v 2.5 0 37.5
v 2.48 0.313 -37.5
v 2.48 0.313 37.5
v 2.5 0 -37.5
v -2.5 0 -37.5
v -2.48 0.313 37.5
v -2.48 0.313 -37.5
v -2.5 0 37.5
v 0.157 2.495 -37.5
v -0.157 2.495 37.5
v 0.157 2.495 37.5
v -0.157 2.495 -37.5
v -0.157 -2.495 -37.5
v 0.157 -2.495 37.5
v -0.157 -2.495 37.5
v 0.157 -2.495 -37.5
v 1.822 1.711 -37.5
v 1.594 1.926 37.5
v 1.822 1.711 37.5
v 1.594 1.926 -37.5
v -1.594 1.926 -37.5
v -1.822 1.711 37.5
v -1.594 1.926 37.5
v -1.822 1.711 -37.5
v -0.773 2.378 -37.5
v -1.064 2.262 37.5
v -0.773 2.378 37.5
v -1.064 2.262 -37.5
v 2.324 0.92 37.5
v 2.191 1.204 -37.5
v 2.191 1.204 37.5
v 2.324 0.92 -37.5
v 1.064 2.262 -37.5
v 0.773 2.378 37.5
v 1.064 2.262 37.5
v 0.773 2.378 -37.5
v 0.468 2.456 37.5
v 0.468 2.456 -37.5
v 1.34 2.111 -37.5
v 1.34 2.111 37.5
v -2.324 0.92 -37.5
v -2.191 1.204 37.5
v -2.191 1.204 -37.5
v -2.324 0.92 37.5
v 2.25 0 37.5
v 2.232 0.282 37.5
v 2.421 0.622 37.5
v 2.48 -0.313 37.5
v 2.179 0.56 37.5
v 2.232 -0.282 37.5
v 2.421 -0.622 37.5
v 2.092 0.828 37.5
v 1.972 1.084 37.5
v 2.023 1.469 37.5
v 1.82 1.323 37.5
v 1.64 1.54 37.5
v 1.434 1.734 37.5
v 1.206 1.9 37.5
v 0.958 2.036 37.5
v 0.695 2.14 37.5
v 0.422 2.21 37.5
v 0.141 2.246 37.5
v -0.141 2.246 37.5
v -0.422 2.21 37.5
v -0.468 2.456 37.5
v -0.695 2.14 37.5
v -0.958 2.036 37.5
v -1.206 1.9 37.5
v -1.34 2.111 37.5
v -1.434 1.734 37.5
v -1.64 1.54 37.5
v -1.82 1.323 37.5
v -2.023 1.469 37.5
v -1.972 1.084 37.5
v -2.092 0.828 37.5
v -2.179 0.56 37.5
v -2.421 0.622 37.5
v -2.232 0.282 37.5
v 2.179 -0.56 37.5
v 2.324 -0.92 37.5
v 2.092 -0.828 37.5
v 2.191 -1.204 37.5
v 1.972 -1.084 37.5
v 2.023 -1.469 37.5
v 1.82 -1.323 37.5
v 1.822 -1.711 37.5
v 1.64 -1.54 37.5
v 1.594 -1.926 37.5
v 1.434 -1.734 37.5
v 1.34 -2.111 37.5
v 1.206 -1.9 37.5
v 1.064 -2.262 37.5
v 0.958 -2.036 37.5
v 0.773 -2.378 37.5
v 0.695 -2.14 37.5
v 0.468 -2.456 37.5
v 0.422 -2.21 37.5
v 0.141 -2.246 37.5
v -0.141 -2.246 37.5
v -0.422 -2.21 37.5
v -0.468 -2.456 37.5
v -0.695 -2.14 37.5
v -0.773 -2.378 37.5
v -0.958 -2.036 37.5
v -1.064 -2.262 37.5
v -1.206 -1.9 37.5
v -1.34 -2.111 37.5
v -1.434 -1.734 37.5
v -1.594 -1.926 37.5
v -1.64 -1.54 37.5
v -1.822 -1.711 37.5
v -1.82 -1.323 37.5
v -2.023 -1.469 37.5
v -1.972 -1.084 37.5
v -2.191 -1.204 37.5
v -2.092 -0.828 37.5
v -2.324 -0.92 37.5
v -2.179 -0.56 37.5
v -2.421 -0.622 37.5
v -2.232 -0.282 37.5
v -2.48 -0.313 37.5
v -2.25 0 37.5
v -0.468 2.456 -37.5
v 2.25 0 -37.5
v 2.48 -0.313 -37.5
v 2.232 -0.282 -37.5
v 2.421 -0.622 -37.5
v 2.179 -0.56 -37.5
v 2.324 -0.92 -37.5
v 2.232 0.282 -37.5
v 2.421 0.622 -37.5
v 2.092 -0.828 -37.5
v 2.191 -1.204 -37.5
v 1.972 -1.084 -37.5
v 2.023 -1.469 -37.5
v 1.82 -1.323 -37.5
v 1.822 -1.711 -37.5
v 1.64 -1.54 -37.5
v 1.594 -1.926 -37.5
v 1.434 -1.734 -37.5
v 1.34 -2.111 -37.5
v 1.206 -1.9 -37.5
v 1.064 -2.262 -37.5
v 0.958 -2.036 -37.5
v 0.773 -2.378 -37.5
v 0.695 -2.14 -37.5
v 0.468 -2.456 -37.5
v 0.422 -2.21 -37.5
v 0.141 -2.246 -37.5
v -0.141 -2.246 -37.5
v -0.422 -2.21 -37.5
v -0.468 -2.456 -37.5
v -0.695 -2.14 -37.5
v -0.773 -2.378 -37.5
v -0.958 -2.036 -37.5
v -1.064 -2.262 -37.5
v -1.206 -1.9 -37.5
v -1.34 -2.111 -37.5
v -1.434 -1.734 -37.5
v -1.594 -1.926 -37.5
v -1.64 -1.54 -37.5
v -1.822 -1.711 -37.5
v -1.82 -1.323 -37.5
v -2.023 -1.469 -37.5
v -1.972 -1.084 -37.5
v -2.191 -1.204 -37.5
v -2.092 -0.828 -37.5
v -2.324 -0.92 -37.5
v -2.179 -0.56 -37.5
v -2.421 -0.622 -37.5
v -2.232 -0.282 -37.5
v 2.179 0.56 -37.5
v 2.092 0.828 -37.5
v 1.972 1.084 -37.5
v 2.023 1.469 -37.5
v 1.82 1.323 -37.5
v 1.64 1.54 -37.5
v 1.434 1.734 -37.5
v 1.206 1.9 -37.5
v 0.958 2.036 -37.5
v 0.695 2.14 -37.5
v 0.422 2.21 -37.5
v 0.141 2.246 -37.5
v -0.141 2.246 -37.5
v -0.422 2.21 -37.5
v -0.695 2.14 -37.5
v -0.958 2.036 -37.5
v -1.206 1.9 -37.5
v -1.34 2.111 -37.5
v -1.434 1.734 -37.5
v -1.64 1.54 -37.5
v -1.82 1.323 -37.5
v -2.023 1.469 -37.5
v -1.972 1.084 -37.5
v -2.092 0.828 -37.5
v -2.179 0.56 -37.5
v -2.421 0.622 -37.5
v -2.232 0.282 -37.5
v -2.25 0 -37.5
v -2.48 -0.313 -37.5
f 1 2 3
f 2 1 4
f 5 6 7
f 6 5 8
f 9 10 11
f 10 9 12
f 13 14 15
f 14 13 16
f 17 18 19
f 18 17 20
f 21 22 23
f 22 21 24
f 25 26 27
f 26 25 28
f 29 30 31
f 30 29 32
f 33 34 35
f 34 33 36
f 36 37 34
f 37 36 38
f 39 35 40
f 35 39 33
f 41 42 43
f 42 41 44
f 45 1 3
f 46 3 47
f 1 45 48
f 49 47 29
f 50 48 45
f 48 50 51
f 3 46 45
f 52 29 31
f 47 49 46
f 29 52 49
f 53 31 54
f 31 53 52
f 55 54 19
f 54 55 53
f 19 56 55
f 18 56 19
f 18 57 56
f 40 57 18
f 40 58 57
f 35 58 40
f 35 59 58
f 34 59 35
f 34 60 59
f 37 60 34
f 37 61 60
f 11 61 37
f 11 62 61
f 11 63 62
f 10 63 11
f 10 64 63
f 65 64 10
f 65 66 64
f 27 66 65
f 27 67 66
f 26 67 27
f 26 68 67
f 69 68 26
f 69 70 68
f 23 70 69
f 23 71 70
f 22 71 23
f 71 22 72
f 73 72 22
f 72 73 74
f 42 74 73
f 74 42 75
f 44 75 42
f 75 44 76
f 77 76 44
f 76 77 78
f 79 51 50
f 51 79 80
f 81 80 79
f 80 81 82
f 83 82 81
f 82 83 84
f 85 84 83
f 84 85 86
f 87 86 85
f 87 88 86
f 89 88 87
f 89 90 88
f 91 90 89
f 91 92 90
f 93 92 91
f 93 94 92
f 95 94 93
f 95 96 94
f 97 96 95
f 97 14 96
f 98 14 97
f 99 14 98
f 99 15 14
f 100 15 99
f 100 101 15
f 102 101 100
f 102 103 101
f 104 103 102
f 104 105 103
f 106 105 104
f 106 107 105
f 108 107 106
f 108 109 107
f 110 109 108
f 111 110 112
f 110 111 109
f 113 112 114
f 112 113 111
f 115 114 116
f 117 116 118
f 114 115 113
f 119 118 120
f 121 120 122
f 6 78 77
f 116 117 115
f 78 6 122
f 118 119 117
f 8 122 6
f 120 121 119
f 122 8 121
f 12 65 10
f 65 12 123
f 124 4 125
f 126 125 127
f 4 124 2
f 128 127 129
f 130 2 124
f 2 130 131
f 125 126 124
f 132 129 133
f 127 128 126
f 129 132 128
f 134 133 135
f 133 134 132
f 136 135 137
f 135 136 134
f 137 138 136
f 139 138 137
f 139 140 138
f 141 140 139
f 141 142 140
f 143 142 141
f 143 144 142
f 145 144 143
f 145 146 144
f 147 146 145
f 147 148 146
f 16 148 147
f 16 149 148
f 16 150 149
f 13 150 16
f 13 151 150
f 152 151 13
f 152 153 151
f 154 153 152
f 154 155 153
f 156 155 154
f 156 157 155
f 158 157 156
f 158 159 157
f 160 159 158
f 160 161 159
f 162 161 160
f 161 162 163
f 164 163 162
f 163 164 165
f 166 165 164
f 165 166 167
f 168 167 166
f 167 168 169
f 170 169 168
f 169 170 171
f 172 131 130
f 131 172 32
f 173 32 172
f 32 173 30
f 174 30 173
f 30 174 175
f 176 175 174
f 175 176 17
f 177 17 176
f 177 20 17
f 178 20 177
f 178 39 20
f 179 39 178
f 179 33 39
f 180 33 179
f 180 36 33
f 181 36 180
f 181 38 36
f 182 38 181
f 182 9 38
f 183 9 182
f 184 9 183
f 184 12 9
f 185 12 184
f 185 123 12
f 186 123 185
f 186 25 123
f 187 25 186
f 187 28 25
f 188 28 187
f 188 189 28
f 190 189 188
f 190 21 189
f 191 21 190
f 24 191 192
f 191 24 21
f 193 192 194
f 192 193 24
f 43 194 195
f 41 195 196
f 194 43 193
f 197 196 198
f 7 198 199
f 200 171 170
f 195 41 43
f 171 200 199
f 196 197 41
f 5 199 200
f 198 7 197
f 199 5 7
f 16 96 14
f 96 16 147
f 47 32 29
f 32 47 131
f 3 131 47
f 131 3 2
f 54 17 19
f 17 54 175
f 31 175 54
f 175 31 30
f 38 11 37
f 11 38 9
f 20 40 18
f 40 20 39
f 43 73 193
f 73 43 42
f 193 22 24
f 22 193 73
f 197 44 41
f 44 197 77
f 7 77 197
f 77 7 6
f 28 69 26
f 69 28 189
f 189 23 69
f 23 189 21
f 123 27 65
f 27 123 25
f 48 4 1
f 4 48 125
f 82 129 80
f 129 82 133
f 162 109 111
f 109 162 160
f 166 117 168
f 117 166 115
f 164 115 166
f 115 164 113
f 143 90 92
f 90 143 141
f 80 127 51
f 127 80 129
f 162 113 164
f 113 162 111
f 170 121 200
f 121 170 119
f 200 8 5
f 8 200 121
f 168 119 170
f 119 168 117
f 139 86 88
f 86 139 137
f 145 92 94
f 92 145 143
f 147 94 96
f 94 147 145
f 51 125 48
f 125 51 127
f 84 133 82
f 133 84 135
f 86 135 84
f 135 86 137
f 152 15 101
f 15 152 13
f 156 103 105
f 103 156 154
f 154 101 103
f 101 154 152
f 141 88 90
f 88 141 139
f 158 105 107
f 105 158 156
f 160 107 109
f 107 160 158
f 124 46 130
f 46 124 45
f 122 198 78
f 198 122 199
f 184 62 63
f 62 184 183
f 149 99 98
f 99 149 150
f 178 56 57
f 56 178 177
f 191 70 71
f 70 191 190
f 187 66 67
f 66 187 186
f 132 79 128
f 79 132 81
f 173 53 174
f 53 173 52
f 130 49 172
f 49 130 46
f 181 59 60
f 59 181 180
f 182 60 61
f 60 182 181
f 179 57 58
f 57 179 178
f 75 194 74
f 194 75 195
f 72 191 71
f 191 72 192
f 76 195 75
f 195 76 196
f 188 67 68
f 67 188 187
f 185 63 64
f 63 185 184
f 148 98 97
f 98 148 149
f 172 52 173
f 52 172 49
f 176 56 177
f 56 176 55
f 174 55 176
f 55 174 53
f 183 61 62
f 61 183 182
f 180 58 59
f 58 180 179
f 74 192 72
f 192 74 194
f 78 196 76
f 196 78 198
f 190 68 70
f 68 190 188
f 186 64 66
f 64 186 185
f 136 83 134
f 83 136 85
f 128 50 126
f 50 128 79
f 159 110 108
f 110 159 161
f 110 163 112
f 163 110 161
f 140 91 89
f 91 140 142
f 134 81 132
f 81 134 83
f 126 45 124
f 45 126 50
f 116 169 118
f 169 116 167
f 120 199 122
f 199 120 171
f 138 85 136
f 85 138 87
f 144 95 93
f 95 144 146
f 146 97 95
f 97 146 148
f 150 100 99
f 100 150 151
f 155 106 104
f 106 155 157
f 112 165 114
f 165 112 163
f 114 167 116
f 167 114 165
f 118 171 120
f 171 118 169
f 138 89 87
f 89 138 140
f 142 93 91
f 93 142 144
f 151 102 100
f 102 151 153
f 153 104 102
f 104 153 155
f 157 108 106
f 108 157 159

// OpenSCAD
$fn = 50;


difference() {
	union() {
		translate(v = [0, 0, -37.5000000000]) {
			cylinder(h = 75, r = 2.5000000000);
		}
	}
	union() {
		translate(v = [0, 0, -100.0000000000]) {
			cylinder(h = 200, r = 2.2500000000);
		}
	}
}
